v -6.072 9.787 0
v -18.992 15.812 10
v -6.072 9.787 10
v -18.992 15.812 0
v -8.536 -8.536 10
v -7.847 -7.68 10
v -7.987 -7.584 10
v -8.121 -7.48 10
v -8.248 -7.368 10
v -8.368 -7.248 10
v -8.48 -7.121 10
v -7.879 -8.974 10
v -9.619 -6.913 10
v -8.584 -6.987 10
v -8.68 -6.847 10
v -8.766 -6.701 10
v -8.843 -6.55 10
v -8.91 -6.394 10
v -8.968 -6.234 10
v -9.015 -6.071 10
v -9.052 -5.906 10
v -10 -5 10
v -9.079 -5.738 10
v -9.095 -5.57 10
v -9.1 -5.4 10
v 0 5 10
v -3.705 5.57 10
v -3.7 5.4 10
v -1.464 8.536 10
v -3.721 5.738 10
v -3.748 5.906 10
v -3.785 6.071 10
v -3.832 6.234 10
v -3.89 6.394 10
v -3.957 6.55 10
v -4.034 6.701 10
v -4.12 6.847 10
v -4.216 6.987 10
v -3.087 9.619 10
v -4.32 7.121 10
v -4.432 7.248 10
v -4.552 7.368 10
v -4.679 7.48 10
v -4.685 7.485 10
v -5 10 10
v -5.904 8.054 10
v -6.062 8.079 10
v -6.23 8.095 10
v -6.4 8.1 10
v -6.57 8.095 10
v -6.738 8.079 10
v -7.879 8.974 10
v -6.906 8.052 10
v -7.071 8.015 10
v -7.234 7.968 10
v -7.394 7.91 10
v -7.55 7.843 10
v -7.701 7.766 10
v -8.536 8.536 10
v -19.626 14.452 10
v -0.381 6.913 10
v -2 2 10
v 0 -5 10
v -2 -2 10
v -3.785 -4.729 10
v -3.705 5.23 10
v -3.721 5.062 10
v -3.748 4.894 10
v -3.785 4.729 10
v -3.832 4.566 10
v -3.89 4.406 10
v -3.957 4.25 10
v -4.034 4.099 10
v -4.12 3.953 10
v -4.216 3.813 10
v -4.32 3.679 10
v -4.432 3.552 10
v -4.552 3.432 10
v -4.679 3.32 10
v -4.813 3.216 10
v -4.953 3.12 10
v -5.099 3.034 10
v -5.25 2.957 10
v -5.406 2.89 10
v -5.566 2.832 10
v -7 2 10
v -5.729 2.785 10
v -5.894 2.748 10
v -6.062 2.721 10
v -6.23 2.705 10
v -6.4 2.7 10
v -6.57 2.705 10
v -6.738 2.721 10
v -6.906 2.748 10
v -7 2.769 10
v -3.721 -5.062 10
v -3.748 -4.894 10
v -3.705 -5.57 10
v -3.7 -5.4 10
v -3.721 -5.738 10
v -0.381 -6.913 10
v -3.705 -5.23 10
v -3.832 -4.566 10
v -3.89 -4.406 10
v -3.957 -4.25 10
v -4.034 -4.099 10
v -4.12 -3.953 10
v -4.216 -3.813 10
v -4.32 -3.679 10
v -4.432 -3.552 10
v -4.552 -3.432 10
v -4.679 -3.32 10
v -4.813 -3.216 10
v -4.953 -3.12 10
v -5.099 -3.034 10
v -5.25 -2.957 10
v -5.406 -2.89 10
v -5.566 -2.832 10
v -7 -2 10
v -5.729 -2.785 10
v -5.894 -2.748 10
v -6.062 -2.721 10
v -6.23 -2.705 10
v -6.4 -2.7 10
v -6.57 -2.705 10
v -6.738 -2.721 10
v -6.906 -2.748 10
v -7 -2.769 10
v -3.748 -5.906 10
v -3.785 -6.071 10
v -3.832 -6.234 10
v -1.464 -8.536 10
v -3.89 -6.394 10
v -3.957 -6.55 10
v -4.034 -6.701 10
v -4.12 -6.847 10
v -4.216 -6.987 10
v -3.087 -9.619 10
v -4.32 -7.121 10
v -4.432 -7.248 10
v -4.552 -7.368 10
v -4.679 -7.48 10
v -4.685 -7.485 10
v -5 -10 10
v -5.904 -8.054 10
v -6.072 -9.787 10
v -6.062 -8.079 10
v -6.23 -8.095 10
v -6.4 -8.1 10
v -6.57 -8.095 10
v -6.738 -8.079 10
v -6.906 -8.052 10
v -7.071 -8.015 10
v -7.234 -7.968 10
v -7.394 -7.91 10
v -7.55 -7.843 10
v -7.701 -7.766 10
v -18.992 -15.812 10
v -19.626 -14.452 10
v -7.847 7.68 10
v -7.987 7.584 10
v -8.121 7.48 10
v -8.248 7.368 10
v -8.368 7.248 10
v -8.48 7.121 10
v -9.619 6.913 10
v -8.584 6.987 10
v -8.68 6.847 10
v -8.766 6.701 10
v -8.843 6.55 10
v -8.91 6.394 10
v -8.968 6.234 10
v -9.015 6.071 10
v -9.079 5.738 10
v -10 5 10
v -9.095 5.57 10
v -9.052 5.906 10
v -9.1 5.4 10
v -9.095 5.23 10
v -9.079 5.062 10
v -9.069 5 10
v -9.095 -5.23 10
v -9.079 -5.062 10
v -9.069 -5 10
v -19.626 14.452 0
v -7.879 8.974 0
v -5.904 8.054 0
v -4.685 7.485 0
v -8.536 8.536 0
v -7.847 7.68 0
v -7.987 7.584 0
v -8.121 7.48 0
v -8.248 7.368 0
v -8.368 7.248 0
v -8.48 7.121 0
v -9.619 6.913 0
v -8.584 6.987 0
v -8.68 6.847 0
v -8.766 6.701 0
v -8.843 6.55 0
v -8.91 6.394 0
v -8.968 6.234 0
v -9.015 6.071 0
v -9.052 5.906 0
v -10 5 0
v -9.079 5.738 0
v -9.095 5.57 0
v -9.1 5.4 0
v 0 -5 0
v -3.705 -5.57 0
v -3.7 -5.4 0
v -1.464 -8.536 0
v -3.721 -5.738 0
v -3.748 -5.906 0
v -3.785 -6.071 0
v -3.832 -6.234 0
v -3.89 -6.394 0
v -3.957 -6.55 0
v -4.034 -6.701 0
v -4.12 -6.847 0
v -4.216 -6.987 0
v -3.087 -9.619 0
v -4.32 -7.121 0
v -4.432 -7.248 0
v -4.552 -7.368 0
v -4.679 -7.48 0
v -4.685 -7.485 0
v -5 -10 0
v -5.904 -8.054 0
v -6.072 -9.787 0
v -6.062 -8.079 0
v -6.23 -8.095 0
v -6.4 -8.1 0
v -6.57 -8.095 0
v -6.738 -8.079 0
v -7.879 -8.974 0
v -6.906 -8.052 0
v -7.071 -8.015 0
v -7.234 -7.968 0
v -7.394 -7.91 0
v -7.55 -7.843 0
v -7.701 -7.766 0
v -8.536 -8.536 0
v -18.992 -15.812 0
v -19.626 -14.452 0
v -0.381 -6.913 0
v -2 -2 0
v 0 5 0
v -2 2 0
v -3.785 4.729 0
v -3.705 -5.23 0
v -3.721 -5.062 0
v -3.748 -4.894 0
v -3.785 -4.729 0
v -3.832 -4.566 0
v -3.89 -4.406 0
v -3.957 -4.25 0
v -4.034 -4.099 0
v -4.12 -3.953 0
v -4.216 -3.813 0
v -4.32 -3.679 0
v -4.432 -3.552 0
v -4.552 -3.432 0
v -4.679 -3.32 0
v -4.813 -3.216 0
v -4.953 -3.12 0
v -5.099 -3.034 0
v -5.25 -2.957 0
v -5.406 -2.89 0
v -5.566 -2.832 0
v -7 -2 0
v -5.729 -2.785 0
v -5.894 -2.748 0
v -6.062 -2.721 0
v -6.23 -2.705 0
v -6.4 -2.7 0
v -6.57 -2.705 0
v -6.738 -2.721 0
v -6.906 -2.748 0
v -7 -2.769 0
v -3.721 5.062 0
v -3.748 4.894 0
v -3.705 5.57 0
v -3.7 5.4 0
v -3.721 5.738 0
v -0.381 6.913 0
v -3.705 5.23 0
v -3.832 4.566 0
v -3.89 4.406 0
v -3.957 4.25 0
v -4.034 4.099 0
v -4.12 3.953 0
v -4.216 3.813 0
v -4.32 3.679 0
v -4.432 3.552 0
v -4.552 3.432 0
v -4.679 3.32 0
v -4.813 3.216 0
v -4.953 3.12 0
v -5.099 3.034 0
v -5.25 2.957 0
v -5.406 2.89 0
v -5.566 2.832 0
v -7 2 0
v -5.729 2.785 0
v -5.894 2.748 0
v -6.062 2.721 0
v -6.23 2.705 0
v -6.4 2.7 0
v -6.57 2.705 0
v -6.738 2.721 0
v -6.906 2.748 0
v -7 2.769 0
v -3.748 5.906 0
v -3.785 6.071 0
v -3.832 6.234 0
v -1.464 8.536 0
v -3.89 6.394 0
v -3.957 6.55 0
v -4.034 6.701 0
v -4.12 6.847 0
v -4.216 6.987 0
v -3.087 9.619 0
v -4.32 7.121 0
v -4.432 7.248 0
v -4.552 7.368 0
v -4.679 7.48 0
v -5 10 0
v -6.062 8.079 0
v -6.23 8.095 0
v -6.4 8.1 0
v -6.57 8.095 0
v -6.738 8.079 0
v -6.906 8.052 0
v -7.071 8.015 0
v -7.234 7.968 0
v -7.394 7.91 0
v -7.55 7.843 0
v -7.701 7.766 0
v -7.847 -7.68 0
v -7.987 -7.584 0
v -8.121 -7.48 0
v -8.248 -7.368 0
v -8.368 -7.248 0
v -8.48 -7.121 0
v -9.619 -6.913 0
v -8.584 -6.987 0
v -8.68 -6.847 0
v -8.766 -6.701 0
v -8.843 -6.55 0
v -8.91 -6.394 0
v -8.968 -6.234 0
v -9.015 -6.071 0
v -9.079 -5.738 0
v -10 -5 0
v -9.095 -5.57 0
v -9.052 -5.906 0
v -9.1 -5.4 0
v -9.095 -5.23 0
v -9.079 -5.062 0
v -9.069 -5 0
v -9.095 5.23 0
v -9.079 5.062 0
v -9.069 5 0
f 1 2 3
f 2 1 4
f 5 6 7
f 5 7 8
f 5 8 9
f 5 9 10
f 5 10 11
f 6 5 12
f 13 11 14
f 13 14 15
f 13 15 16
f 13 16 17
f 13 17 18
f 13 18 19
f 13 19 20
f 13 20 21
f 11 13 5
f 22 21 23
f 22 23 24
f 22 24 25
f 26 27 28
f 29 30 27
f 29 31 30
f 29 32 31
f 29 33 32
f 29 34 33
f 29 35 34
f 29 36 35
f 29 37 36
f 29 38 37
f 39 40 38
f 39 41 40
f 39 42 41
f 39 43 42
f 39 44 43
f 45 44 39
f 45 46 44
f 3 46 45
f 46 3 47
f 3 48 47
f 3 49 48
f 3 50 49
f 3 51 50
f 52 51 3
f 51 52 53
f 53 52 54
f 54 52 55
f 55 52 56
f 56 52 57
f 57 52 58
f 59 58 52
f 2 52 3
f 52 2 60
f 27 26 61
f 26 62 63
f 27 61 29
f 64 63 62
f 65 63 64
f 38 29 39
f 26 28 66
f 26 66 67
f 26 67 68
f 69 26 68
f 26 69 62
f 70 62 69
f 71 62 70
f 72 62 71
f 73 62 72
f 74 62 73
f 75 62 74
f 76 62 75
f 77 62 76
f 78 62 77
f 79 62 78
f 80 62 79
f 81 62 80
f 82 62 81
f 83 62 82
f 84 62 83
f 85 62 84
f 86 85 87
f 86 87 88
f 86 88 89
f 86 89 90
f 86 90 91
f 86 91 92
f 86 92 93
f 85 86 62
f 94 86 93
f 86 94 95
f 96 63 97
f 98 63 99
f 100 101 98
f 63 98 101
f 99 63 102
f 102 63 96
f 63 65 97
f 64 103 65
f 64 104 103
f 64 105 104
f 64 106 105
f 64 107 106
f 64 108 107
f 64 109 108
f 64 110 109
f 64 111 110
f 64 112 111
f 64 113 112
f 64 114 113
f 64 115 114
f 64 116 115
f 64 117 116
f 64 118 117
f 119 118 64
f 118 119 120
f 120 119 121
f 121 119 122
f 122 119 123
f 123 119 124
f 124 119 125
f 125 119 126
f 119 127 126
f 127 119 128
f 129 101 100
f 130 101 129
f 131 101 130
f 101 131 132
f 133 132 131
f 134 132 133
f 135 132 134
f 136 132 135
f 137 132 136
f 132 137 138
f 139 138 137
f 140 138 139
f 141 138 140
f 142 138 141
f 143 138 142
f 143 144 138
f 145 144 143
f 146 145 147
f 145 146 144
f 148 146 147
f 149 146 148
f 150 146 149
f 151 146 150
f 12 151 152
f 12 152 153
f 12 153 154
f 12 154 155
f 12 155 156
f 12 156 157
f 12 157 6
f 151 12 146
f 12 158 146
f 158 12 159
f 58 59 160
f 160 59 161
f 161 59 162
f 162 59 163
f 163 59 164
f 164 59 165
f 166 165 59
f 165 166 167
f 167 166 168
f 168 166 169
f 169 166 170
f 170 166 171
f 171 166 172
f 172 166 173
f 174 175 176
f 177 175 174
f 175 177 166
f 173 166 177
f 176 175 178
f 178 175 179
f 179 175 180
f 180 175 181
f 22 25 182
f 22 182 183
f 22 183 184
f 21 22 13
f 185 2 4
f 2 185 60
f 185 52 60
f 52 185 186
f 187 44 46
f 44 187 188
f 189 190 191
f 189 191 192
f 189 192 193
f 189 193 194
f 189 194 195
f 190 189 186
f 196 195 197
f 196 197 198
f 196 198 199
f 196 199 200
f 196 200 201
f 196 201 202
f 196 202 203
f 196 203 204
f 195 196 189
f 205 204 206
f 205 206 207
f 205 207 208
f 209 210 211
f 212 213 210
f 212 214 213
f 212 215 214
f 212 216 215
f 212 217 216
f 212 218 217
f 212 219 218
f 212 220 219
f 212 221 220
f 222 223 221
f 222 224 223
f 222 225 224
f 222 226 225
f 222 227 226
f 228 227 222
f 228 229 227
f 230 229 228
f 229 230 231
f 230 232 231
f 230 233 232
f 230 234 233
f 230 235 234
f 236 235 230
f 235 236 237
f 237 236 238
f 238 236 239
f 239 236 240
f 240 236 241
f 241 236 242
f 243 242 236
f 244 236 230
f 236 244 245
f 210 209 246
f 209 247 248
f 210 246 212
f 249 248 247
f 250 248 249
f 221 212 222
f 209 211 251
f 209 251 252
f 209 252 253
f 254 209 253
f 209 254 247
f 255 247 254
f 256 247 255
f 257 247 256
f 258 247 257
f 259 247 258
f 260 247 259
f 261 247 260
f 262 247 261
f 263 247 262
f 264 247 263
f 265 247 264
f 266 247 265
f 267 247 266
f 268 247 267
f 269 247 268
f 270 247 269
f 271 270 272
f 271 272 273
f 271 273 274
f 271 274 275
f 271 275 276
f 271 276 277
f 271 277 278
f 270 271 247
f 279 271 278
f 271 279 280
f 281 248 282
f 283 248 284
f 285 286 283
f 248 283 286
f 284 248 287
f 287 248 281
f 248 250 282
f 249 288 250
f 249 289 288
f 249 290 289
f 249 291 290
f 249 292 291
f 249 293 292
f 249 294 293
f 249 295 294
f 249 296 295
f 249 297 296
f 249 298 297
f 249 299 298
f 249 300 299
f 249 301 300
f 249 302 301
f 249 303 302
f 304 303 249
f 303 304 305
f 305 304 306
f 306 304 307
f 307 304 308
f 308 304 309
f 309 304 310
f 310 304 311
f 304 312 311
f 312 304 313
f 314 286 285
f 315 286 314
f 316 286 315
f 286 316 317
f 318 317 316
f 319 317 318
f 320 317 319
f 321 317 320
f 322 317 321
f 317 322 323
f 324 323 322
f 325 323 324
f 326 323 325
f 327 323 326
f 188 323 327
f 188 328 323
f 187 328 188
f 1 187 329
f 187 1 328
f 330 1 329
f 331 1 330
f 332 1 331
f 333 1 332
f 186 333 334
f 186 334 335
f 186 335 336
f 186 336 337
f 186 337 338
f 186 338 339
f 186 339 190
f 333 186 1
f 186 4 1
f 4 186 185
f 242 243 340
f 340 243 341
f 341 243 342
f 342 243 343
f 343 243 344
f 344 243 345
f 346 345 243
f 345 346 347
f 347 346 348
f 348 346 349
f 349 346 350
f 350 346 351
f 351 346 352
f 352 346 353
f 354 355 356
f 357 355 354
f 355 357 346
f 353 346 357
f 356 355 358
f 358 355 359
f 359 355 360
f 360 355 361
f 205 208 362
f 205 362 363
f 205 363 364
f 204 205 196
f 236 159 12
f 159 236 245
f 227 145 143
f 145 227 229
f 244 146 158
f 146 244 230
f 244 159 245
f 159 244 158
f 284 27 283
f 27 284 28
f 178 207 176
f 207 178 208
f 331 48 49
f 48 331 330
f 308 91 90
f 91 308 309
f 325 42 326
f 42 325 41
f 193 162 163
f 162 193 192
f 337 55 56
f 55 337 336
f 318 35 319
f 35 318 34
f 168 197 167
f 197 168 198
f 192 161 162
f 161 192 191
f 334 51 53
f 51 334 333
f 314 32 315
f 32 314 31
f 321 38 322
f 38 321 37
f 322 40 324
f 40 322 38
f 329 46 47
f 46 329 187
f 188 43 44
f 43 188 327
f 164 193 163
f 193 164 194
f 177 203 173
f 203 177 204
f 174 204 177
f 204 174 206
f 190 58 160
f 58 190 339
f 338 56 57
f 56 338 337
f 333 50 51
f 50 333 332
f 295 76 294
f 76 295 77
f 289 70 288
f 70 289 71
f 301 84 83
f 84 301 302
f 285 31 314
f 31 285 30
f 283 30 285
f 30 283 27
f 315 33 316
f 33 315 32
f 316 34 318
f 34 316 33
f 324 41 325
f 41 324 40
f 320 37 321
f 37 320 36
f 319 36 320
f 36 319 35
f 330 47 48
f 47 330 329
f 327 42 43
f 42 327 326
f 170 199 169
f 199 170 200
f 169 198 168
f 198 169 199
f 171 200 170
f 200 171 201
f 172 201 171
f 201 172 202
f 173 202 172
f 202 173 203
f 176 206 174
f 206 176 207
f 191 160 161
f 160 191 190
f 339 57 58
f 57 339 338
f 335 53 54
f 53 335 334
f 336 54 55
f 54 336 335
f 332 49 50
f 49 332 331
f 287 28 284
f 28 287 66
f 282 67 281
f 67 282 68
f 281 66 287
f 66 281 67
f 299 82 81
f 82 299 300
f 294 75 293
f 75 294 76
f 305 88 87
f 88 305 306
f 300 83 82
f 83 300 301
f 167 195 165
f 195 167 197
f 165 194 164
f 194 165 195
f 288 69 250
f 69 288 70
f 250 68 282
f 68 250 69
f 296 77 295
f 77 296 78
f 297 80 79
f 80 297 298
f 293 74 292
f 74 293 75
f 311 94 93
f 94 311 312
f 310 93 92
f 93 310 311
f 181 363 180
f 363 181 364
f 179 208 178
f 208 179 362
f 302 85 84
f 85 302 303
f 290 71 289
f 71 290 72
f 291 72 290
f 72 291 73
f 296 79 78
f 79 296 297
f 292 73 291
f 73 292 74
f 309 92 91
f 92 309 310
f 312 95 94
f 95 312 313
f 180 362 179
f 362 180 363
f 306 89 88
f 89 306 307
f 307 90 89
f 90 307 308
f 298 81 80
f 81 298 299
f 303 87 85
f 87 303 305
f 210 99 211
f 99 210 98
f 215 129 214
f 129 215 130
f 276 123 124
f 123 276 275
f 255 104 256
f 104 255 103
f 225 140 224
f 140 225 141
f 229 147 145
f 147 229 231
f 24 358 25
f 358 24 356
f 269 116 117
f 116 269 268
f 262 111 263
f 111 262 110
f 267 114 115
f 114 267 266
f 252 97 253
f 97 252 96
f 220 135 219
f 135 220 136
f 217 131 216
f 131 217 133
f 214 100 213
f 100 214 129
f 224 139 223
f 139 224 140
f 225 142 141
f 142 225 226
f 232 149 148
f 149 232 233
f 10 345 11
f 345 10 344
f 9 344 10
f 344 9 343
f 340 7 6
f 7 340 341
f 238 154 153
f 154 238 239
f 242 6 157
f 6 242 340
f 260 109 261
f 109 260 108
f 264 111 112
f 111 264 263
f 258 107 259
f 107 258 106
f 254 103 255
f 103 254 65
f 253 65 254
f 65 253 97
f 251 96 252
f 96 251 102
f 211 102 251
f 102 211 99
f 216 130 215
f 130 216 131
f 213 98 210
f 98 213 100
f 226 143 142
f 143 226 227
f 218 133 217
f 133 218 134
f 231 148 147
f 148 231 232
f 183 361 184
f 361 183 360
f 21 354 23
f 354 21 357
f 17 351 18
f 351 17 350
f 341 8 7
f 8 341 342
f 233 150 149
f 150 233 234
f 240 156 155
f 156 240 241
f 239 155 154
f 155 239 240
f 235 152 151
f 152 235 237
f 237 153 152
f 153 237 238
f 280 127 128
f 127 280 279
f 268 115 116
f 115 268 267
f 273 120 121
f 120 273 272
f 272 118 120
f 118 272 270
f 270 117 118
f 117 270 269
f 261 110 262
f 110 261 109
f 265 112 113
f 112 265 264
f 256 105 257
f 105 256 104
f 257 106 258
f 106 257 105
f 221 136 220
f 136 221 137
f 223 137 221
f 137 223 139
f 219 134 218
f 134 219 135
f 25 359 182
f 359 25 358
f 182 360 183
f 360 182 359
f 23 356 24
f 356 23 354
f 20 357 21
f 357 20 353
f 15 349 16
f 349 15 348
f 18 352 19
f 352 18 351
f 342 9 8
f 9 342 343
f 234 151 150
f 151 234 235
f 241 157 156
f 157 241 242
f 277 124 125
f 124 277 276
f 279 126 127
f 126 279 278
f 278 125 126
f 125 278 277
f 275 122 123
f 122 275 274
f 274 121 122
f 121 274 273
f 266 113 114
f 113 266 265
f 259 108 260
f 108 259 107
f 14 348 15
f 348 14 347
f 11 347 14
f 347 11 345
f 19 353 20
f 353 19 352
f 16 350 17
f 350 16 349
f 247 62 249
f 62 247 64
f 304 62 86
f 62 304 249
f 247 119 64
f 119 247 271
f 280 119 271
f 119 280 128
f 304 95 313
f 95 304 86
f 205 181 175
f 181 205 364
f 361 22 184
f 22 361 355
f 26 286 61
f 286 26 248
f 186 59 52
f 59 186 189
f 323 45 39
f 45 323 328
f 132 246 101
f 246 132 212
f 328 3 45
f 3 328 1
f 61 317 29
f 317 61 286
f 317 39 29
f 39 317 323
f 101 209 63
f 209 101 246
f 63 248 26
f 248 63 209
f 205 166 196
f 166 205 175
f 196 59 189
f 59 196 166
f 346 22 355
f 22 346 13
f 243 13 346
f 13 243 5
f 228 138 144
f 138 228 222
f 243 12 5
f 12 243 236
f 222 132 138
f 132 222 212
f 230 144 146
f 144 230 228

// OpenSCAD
//TODO Translated English

radio_borde = 10/2;
radio_pajita = 5.4/2;
altura = 10;

/***
* Init module
***/
init();
module init(){
  varandilla();
  difference() {
    difference() {
      soporte(altura);
    }
    taladros_pagitas();
    quitar_material();
  }
}

module soporte(altura) {
  posicion_soporte = [-5, 5, 0];
  hull() {
    translate(posicion_soporte)
    cylinder(r=radio_borde, h=altura);

    mirror([0, 1, 0])
    translate(posicion_soporte)
    cylinder(r=radio_borde, h=altura);

  }
}

module varandilla() {
  translate([-1.5, 6, 0]) {
    rotate([0, 0, 65]) {
      cube(size=[1.5, 20, 10]);
    }
  }
  mirror([0, 1, 0]) {
    translate([-1.5, 6, 0]) {
      rotate([0, 0, 65]) {
        cube(size=[1.5, 20, 10]);
      }
    }
  }

}

module taladros_pagitas() {
  altura_taladro = 12;
  posicion_taladro = [-6.4, 5.4, -1];

  translate(posicion_taladro)
  cylinder(r=radio_pajita, h=altura_taladro, $fn=100);

  mirror([0, 1, 0])
  translate(posicion_taladro)
  cylinder(r=radio_pajita, h=altura_taladro, $fn=100);
}

module quitar_material() {
  translate([-17, -2, 0])
  cube(size=[15, 4, 10]);
  translate([-12, -5, 0])
  cube(size=[5, 10, 10]);
}
